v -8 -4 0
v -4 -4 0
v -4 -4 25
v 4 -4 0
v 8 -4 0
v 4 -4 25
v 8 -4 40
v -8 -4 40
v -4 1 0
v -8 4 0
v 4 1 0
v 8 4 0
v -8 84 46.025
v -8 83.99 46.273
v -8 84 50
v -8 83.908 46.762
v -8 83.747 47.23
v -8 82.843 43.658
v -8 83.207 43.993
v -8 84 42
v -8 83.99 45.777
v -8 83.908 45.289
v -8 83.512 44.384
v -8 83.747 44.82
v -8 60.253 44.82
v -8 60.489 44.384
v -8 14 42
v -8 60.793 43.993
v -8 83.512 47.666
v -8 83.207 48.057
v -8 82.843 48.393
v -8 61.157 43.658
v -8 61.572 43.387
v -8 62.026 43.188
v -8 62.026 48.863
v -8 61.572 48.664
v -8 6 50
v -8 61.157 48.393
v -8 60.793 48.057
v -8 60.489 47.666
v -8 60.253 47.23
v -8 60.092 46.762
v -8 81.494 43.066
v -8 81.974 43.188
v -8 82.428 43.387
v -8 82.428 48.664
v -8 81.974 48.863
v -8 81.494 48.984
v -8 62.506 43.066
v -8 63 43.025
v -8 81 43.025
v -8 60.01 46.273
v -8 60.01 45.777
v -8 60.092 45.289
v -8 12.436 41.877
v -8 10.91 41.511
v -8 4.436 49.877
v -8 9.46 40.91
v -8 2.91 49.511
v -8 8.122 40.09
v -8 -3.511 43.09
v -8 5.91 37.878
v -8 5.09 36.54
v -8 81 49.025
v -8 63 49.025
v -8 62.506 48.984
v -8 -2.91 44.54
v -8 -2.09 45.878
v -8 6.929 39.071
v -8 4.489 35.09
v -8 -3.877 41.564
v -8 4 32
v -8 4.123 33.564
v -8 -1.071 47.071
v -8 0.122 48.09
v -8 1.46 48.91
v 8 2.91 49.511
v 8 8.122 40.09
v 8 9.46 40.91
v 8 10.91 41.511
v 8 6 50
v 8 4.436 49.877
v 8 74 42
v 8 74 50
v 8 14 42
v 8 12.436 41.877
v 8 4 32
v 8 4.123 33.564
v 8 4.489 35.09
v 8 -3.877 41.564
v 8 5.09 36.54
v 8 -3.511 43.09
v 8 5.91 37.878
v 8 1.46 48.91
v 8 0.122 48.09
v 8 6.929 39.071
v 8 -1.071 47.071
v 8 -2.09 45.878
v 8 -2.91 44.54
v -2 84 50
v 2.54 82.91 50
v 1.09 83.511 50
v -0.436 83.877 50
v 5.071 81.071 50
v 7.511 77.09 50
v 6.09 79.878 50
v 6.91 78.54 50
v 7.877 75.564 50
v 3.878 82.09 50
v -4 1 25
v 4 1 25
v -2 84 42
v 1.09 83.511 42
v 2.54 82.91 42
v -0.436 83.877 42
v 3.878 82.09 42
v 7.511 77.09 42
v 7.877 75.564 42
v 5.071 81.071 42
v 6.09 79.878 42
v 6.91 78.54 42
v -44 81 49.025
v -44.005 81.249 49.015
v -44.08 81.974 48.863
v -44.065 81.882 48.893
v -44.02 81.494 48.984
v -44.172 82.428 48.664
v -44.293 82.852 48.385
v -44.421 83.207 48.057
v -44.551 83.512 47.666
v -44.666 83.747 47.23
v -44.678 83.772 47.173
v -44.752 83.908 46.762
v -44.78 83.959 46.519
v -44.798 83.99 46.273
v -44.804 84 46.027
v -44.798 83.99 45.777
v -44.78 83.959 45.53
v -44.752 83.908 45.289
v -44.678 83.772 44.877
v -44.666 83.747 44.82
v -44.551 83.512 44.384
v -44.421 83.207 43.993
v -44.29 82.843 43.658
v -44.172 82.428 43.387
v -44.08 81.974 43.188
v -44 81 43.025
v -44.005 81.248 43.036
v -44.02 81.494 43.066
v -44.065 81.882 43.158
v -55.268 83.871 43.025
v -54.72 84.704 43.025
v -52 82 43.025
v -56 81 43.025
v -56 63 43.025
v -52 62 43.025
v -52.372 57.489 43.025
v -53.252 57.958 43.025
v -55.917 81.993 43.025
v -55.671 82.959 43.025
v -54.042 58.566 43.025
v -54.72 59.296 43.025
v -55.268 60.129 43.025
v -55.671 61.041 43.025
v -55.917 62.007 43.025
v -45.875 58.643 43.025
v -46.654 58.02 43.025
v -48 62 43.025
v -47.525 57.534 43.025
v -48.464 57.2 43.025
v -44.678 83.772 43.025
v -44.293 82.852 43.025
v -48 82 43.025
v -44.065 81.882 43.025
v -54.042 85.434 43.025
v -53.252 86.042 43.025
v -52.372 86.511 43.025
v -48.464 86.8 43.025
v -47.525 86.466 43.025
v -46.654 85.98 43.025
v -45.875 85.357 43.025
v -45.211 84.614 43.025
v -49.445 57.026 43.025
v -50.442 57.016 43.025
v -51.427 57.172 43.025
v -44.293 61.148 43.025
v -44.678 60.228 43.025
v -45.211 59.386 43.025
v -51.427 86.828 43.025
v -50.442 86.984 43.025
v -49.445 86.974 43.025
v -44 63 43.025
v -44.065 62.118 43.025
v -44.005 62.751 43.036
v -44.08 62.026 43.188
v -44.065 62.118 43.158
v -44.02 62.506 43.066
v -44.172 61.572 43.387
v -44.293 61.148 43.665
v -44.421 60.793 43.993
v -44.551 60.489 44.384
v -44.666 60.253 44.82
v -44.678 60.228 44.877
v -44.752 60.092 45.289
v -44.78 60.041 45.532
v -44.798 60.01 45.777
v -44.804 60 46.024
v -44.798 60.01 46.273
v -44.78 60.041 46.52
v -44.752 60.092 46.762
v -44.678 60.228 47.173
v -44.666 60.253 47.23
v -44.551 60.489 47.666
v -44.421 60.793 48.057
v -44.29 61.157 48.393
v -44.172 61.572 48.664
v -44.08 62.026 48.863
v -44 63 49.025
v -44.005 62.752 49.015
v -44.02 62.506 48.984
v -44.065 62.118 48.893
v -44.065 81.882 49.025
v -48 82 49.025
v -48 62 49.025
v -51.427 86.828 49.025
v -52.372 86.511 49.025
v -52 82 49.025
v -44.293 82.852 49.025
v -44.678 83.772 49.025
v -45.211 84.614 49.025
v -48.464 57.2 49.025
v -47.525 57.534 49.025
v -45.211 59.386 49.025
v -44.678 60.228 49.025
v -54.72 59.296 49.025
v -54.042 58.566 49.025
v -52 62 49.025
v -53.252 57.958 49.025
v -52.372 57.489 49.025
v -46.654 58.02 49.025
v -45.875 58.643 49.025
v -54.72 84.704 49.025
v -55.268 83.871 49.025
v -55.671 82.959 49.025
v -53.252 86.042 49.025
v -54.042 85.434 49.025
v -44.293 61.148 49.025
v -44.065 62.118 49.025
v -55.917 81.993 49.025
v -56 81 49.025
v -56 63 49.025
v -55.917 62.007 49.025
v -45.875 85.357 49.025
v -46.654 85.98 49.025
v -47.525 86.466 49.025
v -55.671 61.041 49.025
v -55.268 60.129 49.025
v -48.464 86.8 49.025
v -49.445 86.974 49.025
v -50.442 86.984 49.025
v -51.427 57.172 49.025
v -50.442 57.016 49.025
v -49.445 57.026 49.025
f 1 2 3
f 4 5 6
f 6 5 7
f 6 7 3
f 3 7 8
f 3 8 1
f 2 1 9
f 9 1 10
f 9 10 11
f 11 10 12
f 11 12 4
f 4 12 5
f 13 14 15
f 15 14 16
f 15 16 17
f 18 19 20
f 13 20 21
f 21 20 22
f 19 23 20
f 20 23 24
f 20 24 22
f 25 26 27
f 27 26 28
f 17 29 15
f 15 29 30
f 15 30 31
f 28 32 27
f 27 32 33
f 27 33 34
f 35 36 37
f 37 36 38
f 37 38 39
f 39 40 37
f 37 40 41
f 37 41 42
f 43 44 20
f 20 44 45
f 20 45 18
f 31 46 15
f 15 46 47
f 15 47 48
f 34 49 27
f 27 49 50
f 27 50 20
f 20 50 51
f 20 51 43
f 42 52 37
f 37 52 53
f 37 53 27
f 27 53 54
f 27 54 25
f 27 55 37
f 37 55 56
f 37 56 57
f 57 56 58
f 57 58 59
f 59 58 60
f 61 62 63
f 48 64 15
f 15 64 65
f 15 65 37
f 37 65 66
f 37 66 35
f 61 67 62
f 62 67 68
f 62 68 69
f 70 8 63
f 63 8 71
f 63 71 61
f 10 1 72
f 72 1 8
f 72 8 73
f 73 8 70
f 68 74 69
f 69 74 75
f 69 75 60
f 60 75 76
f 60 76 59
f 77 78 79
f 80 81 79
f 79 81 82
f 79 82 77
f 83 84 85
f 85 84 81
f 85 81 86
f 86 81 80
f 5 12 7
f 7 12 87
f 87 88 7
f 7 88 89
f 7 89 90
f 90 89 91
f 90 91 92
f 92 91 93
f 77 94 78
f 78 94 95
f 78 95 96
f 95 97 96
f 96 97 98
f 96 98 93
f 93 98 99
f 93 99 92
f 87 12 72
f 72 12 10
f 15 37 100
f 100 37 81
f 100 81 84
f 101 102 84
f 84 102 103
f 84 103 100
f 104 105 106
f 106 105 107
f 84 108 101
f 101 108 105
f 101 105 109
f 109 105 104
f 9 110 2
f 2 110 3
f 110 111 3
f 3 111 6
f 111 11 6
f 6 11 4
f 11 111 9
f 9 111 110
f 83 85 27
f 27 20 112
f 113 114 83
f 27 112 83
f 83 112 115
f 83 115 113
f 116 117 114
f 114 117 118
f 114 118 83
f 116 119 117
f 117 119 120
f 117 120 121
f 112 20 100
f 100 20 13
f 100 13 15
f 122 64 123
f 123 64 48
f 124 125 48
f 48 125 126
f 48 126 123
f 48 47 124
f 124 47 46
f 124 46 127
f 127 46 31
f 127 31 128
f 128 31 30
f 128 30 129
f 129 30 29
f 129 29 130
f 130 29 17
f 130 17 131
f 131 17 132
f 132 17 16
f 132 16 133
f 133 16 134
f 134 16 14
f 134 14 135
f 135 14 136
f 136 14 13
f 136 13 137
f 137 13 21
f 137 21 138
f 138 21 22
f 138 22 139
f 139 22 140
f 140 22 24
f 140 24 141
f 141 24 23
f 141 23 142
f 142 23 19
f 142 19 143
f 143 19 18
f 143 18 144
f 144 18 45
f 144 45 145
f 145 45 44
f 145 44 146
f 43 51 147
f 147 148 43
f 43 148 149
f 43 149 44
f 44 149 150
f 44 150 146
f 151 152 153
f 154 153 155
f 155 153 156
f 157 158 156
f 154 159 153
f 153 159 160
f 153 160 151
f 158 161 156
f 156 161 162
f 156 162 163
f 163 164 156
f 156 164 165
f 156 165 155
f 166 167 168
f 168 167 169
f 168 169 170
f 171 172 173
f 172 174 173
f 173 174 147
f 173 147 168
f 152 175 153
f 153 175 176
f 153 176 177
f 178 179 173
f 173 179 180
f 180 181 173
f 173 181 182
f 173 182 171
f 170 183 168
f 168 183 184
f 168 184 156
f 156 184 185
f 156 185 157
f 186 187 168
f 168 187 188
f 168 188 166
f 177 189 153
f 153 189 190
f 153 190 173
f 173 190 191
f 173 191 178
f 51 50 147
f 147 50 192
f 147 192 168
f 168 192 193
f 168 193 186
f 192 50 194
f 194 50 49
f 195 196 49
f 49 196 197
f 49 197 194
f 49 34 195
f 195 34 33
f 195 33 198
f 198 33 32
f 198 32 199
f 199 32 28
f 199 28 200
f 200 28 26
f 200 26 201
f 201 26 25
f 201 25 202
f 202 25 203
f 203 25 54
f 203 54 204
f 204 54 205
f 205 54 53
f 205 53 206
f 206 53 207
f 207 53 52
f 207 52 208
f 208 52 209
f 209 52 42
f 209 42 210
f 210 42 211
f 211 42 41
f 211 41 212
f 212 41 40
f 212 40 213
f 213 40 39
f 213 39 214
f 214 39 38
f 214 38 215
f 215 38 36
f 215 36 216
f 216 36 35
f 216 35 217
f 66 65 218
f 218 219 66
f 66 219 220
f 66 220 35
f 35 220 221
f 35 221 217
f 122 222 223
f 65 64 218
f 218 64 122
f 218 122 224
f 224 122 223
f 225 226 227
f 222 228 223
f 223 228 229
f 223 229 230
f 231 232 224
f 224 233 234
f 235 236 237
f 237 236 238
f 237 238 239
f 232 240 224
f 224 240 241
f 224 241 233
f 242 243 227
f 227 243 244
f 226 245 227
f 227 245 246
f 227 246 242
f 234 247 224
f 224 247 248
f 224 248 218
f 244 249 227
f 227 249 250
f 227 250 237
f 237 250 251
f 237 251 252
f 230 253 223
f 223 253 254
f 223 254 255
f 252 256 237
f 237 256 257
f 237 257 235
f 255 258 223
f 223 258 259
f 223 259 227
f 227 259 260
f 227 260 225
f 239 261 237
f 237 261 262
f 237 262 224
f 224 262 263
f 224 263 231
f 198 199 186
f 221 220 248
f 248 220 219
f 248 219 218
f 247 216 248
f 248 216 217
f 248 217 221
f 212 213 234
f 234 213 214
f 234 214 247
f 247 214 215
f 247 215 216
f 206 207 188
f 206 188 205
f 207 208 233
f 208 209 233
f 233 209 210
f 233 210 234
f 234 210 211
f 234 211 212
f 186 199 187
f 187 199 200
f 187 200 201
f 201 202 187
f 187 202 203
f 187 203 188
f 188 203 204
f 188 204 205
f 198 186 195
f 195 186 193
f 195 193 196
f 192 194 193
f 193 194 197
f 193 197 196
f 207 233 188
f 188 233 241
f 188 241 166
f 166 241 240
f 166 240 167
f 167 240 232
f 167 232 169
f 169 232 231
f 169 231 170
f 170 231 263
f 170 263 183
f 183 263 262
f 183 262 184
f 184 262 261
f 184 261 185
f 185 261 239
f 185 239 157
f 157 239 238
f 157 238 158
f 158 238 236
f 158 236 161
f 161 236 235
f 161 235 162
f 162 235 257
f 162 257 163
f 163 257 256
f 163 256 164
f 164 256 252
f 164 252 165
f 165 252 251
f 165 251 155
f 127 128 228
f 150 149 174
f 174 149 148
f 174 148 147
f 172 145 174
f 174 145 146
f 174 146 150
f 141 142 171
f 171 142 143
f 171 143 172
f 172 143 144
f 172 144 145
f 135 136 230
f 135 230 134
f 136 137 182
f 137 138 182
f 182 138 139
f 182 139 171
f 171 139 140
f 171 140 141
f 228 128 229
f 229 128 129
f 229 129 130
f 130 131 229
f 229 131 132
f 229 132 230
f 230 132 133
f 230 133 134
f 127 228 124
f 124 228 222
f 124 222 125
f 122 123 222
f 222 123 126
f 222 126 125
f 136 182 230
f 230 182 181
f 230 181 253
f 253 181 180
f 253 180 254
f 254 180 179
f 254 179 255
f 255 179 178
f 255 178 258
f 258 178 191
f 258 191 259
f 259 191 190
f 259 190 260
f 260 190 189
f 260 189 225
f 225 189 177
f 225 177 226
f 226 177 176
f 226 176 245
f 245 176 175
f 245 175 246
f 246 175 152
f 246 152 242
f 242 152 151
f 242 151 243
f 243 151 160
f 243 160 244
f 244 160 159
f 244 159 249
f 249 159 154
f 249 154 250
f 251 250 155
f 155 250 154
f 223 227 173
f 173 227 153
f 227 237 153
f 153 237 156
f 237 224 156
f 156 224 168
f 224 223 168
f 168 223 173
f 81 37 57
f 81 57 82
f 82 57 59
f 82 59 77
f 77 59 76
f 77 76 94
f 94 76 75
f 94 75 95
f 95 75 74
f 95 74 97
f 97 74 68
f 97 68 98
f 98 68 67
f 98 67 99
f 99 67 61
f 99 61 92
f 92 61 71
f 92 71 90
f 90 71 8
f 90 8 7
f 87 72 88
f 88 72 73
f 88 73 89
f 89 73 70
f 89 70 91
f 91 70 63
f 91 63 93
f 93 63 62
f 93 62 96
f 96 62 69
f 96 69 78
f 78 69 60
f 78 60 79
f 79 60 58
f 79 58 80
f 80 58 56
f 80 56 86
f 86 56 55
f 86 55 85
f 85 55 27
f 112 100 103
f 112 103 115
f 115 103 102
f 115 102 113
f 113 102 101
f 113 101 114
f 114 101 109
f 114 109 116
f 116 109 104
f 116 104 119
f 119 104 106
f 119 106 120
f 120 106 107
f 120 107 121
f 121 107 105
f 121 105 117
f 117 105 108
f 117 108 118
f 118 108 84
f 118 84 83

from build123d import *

# Parameters (mm, degrees)
ARM_FEATURE_SKETCH_W = 16
ARM_FEATURE_SKETCH_H = 8
ARM_FEATURE_DEPTH    = 50
TAB_FEATURE_SKETCH_W = 8
TAB_FEATURE_SKETCH_H = 25
TAB_FEATURE_DEPTH    = 5
LEG_FEATURE_SKETCH_W = 16
LEG_FEATURE_SKETCH_H = 8
LEG_FEATURE_DEPTH    = 80
SLOT_FEATURE_DEPTH   = 42
STRAP_FEATURE_DEPTH  = 6
STRAP_CUT_SKETCH_W   = 4
STRAP_CUT_SKETCH_H   = 20
STRAP_CUT_DEPTH      = 6
FILLET1_R            = 10
FILLET2_R            = 10
FILLET3_R            = 10


with BuildPart() as part:
    # Arm Feature Sketch → Arm Feature (new body)
    with BuildSketch(Plane.XY):
        Rectangle(ARM_FEATURE_SKETCH_W, ARM_FEATURE_SKETCH_H)
    extrude(amount=ARM_FEATURE_DEPTH)

    # Tab Feature Sketch → Tab Feature (cut)
    with BuildSketch(Plane(origin=(0, -4, 0), x_dir=(1, 0, 0), z_dir=(0, 1, 0))):
        with Locations((0, -12.5)):
            Rectangle(TAB_FEATURE_SKETCH_W, TAB_FEATURE_SKETCH_H)
    extrude(amount=TAB_FEATURE_DEPTH, mode=Mode.SUBTRACT)

    # Leg Feature Sketch → Leg Feature (add)
    with BuildSketch(Plane(origin=(0, 4, 0), x_dir=(1, 0, 0), z_dir=(0, 1, 0))):
        with Locations((0, -46)):
            Rectangle(LEG_FEATURE_SKETCH_W, LEG_FEATURE_SKETCH_H)
    extrude(amount=LEG_FEATURE_DEPTH)

    # Slot Feature Sketch → Slot Feature (add)
    with BuildSketch(Plane(origin=(-8, 0, 0), x_dir=(0, 0, -1), z_dir=(1, 0, 0))):
        with BuildLine():
            Line((-43.025235216, 81), (-43.025235216, 63))
            ThreePointArc((-43.025235216, 63), (-46.025235216, 60), (-49.025235216, 63))
            Line((-49.025235216, 63), (-49.025235216, 81))
            ThreePointArc((-49.025235216, 81), (-46.025235216, 84), (-43.025235216, 81))
        make_face()
    extrude(amount=-SLOT_FEATURE_DEPTH)

    # Strap Feature Sketch → Strap Feature (add)
    with BuildSketch(Plane(origin=(0, 0, 43.025235216), x_dir=(-1, 0, 0), z_dir=(0, 0, -1))):
        with BuildLine():
            Line((44, 63), (44, 81))
            ThreePointArc((44, 81), (50, 87), (56, 81))
            Line((56, 81), (56, 63))
            ThreePointArc((56, 63), (50, 57), (44, 63))
        make_face()
    extrude(amount=-STRAP_FEATURE_DEPTH)

    # Strap Cut Sketch → Strap Cut (cut)
    with BuildSketch(Plane.XY.offset(43.025235216)):
        with Locations((-50, 72)):
            Rectangle(STRAP_CUT_SKETCH_W, STRAP_CUT_SKETCH_H)
    extrude(amount=STRAP_CUT_DEPTH, mode=Mode.SUBTRACT)

    # Fillet1
    fillet1_edges = [part.edges().sort_by_distance(p)[0] for p in [
        (0, -4, 50),
    ]]
    fillet(fillet1_edges, radius=FILLET1_R)

    # Fillet2
    fillet2_edges = [part.edges().sort_by_distance(p)[0] for p in [
        (0, 4, 42),
    ]]
    fillet(fillet2_edges, radius=FILLET2_R)

    # Fillet3
    fillet3_edges = [part.edges().sort_by_distance(p)[0] for p in [
        (8, 84, 46),
    ]]
    fillet(fillet3_edges, radius=FILLET3_R)


solid = part.part
